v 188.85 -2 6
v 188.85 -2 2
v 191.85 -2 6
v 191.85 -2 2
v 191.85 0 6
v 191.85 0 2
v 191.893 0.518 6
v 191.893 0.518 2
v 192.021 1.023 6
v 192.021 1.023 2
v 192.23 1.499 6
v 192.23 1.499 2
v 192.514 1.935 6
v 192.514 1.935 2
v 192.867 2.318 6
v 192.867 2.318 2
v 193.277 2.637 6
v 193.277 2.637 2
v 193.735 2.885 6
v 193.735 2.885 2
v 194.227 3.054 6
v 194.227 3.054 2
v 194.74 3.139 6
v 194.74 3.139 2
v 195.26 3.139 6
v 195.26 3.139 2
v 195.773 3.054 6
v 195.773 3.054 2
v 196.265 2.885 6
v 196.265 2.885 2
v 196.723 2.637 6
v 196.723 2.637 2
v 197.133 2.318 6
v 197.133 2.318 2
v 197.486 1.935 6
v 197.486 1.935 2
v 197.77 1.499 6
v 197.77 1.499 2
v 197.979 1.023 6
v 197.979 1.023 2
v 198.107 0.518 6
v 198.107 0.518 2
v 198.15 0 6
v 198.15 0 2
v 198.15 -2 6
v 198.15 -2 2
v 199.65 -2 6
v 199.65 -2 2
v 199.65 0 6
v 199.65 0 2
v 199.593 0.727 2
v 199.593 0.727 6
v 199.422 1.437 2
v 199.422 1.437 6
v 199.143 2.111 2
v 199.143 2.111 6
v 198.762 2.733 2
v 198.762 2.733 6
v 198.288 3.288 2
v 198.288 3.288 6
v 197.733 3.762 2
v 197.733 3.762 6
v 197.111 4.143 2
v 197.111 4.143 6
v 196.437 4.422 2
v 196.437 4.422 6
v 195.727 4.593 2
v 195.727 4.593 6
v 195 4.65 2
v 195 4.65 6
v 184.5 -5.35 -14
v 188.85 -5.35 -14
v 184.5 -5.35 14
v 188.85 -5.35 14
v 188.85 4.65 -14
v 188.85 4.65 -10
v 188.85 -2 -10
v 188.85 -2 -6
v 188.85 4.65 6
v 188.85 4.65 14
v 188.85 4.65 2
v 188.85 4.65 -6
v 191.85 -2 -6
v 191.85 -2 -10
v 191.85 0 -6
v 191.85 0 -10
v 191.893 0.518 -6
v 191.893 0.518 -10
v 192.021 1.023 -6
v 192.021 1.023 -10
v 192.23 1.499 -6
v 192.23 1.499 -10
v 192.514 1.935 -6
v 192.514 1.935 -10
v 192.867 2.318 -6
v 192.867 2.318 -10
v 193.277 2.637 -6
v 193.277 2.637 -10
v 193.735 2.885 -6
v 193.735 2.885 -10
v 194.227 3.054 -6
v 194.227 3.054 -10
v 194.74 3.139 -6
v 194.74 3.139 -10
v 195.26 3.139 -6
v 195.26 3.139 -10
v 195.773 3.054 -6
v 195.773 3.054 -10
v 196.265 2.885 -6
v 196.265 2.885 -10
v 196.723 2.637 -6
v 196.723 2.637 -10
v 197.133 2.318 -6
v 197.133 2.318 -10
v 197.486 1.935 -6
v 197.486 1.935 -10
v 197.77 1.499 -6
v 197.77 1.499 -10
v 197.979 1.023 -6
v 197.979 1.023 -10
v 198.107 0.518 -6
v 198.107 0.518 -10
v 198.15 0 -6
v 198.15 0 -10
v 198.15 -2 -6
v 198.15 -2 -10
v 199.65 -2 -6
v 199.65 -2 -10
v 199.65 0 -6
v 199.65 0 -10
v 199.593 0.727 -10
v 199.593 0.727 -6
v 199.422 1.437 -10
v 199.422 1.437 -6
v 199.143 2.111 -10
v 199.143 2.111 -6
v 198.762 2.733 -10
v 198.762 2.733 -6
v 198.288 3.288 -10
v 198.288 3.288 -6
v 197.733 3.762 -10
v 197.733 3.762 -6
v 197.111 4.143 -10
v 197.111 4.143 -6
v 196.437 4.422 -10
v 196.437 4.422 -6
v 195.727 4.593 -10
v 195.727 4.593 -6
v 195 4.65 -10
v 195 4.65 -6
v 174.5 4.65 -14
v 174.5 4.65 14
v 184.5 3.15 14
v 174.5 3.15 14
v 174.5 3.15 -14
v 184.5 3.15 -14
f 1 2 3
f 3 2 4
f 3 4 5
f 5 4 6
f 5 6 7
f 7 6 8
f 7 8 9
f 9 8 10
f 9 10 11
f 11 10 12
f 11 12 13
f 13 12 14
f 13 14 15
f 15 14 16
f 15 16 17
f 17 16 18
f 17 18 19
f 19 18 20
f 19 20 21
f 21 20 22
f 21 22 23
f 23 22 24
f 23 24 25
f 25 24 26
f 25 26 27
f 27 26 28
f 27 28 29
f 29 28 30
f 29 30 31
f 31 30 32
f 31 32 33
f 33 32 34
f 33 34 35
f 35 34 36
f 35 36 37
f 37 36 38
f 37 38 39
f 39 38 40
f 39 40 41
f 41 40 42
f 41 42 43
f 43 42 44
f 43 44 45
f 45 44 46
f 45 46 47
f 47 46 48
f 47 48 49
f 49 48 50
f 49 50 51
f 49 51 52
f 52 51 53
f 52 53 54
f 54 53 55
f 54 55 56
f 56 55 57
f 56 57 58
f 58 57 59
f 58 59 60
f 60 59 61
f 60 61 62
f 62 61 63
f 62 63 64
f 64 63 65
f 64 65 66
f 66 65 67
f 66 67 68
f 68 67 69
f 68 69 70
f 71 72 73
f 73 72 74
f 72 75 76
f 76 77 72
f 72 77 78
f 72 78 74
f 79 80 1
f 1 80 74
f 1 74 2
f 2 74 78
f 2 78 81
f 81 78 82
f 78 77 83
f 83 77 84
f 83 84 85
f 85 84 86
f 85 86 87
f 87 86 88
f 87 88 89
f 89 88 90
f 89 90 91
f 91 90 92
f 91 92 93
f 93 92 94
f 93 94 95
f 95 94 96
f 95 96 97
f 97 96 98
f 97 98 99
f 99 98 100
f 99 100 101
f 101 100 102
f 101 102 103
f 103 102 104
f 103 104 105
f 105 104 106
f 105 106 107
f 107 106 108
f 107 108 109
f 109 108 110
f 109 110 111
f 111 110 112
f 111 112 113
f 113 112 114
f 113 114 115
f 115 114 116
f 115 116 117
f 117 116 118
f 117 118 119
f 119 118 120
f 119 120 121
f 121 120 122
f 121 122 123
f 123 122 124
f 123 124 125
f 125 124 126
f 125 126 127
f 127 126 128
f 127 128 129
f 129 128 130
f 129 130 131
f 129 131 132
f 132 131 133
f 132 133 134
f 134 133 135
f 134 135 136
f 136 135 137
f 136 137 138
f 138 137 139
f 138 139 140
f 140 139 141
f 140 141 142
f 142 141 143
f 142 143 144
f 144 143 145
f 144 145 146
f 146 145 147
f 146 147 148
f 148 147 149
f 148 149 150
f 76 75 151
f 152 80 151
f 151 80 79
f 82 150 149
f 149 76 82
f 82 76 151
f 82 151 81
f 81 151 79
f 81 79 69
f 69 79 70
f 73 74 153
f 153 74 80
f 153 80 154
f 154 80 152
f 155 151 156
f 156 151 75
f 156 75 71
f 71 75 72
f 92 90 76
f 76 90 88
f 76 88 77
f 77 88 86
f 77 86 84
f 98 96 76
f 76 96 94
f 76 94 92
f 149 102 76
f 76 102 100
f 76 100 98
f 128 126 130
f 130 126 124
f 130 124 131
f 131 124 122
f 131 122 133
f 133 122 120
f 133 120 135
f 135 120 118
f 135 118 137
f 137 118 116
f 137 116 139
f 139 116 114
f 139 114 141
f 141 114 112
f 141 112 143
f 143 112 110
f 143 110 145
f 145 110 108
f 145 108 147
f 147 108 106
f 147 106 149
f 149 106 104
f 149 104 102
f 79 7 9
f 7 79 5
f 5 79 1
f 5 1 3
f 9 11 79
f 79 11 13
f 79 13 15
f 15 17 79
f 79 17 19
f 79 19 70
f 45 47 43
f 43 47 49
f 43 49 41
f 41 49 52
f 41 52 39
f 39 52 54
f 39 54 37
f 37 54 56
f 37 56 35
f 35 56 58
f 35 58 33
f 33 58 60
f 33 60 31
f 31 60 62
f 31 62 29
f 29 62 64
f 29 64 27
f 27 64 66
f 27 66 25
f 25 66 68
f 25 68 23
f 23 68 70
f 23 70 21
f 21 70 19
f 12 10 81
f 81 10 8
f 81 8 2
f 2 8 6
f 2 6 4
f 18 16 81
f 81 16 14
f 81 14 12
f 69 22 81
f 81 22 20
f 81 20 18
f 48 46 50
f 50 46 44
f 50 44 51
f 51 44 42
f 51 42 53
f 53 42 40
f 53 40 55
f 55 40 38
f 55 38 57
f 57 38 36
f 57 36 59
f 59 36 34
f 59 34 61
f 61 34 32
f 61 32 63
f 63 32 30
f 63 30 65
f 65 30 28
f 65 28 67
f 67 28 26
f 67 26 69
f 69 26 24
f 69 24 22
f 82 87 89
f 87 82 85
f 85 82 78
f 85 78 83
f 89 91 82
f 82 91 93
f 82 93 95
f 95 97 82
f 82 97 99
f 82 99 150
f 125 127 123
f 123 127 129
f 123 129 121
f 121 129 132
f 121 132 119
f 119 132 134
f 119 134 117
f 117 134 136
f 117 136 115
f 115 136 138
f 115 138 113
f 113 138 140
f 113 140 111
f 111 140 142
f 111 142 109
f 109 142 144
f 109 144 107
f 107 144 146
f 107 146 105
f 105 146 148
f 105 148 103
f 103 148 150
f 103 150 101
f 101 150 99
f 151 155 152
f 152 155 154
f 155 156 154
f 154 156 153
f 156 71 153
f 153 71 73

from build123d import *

# Parameters (mm, degrees)
AUFSATZ_LINEAR_AUSTRAGEN2_DEPTH = 14
SKIZZE3_W                       = 10.8
SKIZZE3_H                       = 4
SKIZZE3_H_2                     = 8
SCHNITT_LINEAR_AUSTRAGEN1_DEPTH = 201.389926144
SCHNITT_LINEAR_AUSTRAGEN2_DEPTH = 202.674849696


with BuildPart() as part:
    # Skizze1 → Aufsatz-Linear austragen2 (new, symmetric)
    with BuildSketch(Plane.XY):
        with BuildLine():
            Line((-198.15, 0), (-198.15, -2))
            Line((-198.15, -2), (-199.65, -2))
            Line((-199.65, -2), (-199.65, 0))
            ThreePointArc((-199.65, 0), (-198.288046533, 3.288046533), (-195, 4.65))
            Line((-195, 4.65), (195, 4.65))
            ThreePointArc((195, 4.65), (198.288046533, 3.288046533), (199.65, 0))
            Line((199.65, 0), (199.65, -2))
            Line((199.65, -2), (198.15, -2))
            Line((198.15, -2), (198.15, 0))
            ThreePointArc((198.15, 0), (195, 3.15), (191.85, 0))
            Line((191.85, 0), (191.85, -2))
            Line((191.85, -2), (188.85, -2))
            Line((188.85, -2), (188.85, -5.35))
            Line((188.85, -5.35), (-188.85, -5.35))
            Line((-188.85, -5.35), (-188.85, -2))
            Line((-188.85, -2), (-191.85, -2))
            Line((-191.85, -2), (-191.85, 0))
            ThreePointArc((-191.85, 0), (-195, 3.15), (-198.15, 0))
        make_face()
    extrude(amount=AUFSATZ_LINEAR_AUSTRAGEN2_DEPTH, both=True)

    # Skizze3 → Schnitt-Linear austragen1 (cut, through all)
    with BuildSketch(Plane.XZ.offset(5.35)):
        with Locations((-194.25, 12)):
            Rectangle(SKIZZE3_W, SKIZZE3_H)
        with Locations((-194.25, 2)):
            Rectangle(SKIZZE3_W, SKIZZE3_H_2)
        with Locations((-194.25, -10)):
            Rectangle(SKIZZE3_W, SKIZZE3_H_2)
        with Locations((194.25, 10)):
            Rectangle(SKIZZE3_W, SKIZZE3_H_2)
        with Locations((194.25, -2)):
            Rectangle(SKIZZE3_W, SKIZZE3_H_2)
        with Locations((194.25, -12)):
            Rectangle(SKIZZE3_W, SKIZZE3_H)
    extrude(amount=-SCHNITT_LINEAR_AUSTRAGEN1_DEPTH, mode=Mode.SUBTRACT)

    # Skizze4 → Schnitt-Linear austragen2 (cut, through all)
    with BuildSketch(Plane.XY.offset(14)):
        Polygon((174.5, 4.65), (174.5, 3.15), (184.5, 3.15), (184.5, -5.35), (-199.65, -5.35), (-199.65, 4.65), align=None)
    extrude(amount=-SCHNITT_LINEAR_AUSTRAGEN2_DEPTH, mode=Mode.SUBTRACT)


solid = part.part
